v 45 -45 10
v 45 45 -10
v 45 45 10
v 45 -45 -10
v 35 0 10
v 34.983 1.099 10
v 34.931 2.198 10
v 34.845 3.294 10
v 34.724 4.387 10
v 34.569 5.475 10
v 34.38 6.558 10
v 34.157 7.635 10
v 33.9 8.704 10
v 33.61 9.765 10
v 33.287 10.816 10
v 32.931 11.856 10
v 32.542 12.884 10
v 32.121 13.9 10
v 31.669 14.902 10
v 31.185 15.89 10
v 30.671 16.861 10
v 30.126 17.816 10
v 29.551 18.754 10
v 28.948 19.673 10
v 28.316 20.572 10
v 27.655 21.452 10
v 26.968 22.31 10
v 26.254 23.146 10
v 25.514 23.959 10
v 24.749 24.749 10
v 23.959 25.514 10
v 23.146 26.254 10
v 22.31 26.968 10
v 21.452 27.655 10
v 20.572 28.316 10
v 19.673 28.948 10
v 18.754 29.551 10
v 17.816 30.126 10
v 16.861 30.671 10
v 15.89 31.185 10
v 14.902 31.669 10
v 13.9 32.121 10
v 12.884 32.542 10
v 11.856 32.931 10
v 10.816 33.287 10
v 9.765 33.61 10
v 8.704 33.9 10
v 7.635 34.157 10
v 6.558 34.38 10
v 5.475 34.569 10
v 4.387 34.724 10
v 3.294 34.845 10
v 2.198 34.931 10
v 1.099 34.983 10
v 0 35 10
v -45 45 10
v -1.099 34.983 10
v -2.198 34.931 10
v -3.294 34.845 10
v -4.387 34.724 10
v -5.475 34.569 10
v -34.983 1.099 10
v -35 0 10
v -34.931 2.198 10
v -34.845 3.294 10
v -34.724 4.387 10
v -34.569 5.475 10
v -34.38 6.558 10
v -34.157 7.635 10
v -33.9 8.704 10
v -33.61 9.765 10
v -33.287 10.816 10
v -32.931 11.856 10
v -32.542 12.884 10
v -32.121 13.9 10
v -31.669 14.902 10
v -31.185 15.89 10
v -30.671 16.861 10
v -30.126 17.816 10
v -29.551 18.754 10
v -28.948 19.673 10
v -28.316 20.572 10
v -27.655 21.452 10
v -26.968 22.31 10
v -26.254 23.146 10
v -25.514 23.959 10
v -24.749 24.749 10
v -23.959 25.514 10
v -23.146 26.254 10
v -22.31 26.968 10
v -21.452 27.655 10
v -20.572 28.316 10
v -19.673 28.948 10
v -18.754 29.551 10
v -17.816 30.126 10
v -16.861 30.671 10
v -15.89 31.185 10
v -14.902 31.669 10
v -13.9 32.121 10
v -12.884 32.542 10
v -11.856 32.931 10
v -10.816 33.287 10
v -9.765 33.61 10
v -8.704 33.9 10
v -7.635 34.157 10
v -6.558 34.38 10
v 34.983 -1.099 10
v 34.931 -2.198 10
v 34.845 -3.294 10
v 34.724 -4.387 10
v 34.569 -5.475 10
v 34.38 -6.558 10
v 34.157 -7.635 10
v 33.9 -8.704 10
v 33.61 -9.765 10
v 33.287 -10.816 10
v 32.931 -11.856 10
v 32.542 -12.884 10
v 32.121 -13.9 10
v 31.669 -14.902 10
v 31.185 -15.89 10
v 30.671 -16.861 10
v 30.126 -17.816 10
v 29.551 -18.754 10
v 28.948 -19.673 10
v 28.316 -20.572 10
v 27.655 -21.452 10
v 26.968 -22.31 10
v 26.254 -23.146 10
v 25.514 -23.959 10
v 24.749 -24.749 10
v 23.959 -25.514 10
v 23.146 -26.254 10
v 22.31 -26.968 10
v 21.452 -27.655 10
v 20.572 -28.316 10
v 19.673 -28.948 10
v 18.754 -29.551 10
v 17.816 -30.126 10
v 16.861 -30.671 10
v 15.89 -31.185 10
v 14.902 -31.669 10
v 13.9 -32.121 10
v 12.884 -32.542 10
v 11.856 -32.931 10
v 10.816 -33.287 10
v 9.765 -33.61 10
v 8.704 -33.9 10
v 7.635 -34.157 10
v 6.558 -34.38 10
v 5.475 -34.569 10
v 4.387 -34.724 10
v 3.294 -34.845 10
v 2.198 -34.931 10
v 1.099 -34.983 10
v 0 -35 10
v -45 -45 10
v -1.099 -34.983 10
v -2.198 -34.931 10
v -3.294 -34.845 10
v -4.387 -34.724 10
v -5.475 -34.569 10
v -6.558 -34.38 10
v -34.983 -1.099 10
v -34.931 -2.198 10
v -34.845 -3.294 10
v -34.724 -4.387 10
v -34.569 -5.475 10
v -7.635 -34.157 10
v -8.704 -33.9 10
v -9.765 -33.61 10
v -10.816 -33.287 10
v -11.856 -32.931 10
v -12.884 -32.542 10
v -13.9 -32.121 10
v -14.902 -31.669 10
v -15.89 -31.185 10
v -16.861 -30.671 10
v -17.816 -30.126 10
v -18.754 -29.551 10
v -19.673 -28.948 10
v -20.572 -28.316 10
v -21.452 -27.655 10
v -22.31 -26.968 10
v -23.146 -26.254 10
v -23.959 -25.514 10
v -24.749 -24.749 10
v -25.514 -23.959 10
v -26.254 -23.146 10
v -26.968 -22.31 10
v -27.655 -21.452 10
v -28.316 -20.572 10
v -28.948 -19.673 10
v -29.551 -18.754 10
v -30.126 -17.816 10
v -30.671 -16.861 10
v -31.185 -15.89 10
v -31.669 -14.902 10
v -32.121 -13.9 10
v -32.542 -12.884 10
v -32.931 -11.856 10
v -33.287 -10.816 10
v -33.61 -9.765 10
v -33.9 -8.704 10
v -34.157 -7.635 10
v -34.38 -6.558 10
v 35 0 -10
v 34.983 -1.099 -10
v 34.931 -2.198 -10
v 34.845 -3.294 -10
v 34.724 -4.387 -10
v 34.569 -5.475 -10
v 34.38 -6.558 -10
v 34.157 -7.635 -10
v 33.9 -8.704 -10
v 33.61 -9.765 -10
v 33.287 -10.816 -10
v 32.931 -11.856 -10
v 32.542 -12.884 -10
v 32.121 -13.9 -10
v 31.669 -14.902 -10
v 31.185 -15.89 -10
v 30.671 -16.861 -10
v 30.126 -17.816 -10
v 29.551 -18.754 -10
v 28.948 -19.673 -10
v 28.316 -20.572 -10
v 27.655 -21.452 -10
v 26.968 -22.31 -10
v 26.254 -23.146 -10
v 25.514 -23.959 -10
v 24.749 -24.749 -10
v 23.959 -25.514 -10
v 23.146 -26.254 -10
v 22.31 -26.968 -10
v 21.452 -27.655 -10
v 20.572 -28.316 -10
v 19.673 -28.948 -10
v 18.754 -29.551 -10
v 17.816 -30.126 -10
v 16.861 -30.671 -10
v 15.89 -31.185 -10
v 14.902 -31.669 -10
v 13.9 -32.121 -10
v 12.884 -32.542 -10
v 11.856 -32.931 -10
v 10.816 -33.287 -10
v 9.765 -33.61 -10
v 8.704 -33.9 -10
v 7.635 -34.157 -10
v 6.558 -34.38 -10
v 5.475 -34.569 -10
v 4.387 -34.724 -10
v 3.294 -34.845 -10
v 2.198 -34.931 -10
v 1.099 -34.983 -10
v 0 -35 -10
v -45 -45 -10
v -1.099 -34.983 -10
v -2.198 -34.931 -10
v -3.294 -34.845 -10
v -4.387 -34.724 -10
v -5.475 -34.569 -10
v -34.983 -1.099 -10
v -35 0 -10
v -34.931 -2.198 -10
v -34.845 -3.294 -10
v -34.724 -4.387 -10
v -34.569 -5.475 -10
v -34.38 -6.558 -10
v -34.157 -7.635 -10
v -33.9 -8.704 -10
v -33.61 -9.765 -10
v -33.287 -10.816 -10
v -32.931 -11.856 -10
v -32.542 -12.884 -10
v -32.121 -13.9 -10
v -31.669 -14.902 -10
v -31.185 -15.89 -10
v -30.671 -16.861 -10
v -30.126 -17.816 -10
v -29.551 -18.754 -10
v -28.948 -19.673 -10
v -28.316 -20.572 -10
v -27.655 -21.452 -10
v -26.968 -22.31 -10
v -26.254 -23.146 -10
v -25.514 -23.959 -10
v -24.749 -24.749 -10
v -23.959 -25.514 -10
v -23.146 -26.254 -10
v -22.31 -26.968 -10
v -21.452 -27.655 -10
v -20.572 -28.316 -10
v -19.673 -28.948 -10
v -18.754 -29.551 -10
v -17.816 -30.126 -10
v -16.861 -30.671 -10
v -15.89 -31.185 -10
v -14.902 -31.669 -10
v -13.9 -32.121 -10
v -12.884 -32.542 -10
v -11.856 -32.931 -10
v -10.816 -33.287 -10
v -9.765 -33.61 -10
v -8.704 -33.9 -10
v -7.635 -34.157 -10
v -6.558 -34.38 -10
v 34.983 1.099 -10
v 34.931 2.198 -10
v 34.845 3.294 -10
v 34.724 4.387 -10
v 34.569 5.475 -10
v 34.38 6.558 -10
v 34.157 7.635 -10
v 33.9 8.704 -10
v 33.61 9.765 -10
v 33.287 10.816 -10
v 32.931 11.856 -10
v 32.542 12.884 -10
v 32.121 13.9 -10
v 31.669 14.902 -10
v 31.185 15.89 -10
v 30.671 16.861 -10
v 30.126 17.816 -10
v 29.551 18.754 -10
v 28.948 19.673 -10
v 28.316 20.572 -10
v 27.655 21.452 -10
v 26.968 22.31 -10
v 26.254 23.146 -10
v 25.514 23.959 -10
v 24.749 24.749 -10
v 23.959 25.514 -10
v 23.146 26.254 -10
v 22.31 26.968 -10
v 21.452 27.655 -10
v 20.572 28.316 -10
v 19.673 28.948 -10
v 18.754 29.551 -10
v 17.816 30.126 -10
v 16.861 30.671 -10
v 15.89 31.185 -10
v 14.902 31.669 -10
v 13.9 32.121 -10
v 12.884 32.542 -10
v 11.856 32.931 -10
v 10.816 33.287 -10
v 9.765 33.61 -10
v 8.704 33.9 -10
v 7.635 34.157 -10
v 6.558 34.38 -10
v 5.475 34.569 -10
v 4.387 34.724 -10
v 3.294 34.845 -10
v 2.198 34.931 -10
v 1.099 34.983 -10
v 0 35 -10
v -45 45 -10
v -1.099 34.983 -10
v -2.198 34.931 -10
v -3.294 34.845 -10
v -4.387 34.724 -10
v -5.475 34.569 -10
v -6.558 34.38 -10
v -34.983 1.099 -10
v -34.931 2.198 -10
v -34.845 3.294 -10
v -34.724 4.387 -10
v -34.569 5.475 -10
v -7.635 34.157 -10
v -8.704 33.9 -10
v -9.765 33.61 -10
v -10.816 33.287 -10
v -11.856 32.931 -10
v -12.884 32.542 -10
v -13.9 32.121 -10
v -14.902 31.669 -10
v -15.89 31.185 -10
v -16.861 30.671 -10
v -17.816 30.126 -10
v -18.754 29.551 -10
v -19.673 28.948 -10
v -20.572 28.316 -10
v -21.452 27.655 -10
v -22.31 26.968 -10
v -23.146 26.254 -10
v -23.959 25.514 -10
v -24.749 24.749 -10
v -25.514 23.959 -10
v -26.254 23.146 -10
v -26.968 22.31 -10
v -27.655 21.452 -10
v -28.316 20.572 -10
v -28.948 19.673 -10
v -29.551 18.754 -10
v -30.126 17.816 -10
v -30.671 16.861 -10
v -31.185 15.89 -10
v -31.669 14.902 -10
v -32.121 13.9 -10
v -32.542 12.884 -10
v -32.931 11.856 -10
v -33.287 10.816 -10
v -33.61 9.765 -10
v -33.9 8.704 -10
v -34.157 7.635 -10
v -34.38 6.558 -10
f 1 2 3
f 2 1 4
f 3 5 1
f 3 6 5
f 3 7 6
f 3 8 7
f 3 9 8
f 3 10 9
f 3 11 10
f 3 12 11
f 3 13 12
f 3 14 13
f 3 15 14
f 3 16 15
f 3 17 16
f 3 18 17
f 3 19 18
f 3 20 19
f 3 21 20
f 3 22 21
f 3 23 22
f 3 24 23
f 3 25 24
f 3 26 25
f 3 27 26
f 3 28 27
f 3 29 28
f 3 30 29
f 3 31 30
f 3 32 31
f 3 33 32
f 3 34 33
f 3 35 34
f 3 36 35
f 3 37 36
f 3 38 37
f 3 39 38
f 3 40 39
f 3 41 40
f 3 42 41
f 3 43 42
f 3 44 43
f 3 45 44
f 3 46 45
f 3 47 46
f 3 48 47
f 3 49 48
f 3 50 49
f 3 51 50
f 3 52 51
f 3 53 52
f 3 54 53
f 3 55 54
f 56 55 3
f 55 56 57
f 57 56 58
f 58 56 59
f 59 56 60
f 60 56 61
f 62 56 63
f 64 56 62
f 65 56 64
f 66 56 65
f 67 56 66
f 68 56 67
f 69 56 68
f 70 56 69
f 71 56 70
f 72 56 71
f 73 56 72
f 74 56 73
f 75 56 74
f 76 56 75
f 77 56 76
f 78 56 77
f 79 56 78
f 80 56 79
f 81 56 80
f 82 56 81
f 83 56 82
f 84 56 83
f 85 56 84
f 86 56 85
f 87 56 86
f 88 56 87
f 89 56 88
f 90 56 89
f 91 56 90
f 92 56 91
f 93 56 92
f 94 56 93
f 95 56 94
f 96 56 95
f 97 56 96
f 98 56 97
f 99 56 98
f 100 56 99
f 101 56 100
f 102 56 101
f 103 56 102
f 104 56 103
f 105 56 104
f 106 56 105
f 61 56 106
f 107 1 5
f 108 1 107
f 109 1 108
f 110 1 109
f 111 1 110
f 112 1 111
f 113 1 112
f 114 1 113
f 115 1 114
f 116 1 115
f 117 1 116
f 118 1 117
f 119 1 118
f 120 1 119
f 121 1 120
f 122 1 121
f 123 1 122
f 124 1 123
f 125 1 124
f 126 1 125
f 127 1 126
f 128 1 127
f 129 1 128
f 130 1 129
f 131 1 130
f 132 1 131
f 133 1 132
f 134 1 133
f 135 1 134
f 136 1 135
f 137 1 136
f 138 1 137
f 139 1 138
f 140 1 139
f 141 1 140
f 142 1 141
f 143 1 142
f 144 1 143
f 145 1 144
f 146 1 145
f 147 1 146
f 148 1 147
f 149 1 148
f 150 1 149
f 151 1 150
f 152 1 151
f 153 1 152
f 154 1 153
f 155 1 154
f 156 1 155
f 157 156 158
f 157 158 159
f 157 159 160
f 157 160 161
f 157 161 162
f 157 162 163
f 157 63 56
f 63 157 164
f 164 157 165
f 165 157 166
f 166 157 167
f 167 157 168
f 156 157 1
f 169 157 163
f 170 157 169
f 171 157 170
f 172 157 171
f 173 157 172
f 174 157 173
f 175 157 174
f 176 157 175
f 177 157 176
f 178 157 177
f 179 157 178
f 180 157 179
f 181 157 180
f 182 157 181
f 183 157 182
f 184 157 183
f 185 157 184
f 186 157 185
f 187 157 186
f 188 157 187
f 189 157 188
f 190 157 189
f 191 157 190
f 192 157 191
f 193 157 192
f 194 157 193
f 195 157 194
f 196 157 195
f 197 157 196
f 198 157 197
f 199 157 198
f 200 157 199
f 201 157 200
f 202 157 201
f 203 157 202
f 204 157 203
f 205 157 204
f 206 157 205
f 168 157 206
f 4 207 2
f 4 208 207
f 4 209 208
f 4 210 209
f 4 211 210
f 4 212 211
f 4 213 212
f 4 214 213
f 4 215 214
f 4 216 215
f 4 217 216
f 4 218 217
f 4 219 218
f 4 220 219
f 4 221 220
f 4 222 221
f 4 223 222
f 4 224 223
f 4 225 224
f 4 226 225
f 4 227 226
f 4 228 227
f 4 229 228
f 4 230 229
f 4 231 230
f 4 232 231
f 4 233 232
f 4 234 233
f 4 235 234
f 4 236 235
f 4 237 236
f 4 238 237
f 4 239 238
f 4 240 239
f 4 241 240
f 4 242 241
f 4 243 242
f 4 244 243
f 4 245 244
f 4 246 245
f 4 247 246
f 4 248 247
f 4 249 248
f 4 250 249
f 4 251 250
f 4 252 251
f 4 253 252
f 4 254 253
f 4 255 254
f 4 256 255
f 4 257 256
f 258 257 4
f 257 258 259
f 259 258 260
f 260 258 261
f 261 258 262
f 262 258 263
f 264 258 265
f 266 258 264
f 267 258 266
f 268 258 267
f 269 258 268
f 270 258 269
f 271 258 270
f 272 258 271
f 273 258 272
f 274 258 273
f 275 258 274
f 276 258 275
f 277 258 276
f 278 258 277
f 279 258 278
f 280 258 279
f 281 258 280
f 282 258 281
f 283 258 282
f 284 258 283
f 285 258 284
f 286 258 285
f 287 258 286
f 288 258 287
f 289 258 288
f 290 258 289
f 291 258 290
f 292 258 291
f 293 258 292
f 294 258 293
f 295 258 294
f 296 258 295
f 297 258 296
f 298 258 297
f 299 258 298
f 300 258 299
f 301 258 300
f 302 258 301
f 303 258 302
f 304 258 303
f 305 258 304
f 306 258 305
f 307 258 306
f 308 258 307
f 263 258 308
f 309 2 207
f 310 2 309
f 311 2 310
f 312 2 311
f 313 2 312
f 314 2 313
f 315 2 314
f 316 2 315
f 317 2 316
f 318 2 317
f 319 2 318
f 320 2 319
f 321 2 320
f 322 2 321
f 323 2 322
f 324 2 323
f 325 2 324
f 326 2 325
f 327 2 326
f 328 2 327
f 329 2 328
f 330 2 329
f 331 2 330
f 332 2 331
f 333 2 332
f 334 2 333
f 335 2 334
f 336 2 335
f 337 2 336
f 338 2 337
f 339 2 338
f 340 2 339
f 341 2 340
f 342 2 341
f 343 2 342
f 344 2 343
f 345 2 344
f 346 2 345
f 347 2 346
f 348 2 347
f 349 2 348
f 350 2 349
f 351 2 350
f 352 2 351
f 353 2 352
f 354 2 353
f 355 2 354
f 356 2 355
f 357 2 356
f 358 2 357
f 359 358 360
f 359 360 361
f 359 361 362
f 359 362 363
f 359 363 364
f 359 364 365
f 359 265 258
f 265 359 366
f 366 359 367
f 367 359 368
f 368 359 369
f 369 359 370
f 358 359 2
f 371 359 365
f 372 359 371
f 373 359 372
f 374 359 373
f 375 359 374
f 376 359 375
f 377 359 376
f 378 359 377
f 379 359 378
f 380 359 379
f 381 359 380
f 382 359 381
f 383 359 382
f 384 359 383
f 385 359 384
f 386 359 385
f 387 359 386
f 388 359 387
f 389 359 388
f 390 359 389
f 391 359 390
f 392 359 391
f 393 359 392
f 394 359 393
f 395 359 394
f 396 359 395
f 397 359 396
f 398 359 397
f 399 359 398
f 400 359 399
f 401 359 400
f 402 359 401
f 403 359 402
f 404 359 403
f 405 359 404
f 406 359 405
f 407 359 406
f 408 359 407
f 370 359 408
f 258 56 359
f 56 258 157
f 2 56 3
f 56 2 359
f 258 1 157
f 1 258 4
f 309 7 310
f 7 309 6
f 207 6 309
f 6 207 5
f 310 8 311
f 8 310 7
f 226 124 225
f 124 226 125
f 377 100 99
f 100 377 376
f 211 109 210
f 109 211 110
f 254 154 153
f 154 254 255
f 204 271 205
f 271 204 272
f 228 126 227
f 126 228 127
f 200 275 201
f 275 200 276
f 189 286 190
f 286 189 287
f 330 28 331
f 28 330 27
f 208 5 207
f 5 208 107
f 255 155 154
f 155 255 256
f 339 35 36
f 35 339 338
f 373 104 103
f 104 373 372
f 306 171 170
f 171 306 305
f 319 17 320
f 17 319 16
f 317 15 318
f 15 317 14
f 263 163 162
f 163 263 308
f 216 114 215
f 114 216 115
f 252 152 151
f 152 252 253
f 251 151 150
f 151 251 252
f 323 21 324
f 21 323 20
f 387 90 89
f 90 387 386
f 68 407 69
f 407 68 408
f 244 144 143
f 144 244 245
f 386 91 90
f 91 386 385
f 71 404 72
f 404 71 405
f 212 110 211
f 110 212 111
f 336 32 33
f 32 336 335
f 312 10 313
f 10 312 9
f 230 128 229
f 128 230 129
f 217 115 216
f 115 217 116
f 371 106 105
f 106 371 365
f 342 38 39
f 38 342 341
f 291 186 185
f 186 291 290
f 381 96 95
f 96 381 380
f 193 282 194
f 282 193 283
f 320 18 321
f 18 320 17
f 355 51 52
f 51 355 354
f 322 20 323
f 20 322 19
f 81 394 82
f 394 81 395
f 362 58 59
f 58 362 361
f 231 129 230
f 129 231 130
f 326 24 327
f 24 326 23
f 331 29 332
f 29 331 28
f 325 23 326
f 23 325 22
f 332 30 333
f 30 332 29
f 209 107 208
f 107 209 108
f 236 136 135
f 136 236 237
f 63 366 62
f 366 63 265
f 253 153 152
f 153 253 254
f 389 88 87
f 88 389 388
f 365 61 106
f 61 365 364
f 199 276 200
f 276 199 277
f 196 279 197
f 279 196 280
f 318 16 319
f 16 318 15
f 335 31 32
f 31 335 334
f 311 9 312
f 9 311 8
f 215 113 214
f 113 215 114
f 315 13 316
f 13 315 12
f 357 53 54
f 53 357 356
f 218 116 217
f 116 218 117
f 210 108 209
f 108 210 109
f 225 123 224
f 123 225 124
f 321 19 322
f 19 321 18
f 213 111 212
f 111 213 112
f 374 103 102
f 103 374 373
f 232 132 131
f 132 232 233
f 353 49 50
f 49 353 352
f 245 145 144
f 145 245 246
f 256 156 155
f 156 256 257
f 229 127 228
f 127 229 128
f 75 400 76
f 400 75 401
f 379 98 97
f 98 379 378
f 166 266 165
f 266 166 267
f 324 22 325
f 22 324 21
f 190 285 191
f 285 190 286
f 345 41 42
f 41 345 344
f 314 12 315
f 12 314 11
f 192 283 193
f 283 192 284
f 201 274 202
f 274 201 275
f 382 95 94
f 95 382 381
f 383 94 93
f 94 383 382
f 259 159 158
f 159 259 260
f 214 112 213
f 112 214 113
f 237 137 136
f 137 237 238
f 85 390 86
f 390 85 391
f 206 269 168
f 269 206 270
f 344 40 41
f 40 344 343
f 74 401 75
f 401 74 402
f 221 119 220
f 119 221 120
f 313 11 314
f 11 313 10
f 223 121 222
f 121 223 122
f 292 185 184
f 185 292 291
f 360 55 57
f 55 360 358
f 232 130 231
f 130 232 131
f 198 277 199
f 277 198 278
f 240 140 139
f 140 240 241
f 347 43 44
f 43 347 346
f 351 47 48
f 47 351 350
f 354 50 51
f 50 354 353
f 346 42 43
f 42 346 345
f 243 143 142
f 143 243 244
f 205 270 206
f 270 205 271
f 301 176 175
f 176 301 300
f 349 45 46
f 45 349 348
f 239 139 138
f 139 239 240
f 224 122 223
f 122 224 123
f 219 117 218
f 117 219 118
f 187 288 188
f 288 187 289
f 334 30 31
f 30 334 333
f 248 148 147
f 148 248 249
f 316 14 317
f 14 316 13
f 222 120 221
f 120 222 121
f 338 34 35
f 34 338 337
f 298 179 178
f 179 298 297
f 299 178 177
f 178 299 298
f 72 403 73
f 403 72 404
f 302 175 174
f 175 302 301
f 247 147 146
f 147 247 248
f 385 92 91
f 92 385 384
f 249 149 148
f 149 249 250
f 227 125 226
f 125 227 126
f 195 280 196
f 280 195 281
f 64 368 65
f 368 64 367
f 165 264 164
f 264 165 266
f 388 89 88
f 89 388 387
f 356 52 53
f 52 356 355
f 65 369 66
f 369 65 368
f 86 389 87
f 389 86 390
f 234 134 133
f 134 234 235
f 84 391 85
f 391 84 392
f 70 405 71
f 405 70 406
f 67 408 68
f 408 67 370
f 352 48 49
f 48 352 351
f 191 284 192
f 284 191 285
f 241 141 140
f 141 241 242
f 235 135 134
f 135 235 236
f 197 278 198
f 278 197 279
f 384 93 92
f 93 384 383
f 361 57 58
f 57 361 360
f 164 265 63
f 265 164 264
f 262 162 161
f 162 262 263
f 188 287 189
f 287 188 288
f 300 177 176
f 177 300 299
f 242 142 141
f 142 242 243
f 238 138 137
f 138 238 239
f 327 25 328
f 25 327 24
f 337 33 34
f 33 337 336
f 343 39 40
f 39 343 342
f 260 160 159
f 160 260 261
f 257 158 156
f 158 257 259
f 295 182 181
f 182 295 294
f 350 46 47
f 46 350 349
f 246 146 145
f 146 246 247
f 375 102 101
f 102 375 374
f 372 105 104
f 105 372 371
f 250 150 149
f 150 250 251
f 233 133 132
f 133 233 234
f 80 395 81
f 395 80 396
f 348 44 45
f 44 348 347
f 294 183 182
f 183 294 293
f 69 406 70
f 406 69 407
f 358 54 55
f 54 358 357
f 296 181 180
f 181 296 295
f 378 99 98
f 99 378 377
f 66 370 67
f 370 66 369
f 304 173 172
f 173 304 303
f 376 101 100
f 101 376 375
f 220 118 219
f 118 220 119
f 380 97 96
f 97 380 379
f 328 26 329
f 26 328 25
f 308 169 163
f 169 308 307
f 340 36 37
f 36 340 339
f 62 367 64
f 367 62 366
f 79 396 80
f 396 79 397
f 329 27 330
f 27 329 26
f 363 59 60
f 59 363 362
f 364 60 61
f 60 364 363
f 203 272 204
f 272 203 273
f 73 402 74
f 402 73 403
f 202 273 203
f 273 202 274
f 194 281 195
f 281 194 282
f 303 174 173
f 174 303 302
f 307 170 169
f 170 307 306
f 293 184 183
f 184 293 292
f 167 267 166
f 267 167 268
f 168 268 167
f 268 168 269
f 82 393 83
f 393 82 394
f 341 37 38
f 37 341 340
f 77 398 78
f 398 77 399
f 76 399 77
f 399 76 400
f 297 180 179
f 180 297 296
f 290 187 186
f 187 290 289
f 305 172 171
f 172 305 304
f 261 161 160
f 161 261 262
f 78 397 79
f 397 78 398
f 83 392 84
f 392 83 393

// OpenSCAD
$fn=200;

DIA = 70;
WIDE = DIA + 20;
HEIGHT = 20;

difference()
{
    cube([WIDE,WIDE, HEIGHT], true);
    translate([0,0,.1])
    cylinder(h = HEIGHT + .2, d = DIA, center=true);
}
